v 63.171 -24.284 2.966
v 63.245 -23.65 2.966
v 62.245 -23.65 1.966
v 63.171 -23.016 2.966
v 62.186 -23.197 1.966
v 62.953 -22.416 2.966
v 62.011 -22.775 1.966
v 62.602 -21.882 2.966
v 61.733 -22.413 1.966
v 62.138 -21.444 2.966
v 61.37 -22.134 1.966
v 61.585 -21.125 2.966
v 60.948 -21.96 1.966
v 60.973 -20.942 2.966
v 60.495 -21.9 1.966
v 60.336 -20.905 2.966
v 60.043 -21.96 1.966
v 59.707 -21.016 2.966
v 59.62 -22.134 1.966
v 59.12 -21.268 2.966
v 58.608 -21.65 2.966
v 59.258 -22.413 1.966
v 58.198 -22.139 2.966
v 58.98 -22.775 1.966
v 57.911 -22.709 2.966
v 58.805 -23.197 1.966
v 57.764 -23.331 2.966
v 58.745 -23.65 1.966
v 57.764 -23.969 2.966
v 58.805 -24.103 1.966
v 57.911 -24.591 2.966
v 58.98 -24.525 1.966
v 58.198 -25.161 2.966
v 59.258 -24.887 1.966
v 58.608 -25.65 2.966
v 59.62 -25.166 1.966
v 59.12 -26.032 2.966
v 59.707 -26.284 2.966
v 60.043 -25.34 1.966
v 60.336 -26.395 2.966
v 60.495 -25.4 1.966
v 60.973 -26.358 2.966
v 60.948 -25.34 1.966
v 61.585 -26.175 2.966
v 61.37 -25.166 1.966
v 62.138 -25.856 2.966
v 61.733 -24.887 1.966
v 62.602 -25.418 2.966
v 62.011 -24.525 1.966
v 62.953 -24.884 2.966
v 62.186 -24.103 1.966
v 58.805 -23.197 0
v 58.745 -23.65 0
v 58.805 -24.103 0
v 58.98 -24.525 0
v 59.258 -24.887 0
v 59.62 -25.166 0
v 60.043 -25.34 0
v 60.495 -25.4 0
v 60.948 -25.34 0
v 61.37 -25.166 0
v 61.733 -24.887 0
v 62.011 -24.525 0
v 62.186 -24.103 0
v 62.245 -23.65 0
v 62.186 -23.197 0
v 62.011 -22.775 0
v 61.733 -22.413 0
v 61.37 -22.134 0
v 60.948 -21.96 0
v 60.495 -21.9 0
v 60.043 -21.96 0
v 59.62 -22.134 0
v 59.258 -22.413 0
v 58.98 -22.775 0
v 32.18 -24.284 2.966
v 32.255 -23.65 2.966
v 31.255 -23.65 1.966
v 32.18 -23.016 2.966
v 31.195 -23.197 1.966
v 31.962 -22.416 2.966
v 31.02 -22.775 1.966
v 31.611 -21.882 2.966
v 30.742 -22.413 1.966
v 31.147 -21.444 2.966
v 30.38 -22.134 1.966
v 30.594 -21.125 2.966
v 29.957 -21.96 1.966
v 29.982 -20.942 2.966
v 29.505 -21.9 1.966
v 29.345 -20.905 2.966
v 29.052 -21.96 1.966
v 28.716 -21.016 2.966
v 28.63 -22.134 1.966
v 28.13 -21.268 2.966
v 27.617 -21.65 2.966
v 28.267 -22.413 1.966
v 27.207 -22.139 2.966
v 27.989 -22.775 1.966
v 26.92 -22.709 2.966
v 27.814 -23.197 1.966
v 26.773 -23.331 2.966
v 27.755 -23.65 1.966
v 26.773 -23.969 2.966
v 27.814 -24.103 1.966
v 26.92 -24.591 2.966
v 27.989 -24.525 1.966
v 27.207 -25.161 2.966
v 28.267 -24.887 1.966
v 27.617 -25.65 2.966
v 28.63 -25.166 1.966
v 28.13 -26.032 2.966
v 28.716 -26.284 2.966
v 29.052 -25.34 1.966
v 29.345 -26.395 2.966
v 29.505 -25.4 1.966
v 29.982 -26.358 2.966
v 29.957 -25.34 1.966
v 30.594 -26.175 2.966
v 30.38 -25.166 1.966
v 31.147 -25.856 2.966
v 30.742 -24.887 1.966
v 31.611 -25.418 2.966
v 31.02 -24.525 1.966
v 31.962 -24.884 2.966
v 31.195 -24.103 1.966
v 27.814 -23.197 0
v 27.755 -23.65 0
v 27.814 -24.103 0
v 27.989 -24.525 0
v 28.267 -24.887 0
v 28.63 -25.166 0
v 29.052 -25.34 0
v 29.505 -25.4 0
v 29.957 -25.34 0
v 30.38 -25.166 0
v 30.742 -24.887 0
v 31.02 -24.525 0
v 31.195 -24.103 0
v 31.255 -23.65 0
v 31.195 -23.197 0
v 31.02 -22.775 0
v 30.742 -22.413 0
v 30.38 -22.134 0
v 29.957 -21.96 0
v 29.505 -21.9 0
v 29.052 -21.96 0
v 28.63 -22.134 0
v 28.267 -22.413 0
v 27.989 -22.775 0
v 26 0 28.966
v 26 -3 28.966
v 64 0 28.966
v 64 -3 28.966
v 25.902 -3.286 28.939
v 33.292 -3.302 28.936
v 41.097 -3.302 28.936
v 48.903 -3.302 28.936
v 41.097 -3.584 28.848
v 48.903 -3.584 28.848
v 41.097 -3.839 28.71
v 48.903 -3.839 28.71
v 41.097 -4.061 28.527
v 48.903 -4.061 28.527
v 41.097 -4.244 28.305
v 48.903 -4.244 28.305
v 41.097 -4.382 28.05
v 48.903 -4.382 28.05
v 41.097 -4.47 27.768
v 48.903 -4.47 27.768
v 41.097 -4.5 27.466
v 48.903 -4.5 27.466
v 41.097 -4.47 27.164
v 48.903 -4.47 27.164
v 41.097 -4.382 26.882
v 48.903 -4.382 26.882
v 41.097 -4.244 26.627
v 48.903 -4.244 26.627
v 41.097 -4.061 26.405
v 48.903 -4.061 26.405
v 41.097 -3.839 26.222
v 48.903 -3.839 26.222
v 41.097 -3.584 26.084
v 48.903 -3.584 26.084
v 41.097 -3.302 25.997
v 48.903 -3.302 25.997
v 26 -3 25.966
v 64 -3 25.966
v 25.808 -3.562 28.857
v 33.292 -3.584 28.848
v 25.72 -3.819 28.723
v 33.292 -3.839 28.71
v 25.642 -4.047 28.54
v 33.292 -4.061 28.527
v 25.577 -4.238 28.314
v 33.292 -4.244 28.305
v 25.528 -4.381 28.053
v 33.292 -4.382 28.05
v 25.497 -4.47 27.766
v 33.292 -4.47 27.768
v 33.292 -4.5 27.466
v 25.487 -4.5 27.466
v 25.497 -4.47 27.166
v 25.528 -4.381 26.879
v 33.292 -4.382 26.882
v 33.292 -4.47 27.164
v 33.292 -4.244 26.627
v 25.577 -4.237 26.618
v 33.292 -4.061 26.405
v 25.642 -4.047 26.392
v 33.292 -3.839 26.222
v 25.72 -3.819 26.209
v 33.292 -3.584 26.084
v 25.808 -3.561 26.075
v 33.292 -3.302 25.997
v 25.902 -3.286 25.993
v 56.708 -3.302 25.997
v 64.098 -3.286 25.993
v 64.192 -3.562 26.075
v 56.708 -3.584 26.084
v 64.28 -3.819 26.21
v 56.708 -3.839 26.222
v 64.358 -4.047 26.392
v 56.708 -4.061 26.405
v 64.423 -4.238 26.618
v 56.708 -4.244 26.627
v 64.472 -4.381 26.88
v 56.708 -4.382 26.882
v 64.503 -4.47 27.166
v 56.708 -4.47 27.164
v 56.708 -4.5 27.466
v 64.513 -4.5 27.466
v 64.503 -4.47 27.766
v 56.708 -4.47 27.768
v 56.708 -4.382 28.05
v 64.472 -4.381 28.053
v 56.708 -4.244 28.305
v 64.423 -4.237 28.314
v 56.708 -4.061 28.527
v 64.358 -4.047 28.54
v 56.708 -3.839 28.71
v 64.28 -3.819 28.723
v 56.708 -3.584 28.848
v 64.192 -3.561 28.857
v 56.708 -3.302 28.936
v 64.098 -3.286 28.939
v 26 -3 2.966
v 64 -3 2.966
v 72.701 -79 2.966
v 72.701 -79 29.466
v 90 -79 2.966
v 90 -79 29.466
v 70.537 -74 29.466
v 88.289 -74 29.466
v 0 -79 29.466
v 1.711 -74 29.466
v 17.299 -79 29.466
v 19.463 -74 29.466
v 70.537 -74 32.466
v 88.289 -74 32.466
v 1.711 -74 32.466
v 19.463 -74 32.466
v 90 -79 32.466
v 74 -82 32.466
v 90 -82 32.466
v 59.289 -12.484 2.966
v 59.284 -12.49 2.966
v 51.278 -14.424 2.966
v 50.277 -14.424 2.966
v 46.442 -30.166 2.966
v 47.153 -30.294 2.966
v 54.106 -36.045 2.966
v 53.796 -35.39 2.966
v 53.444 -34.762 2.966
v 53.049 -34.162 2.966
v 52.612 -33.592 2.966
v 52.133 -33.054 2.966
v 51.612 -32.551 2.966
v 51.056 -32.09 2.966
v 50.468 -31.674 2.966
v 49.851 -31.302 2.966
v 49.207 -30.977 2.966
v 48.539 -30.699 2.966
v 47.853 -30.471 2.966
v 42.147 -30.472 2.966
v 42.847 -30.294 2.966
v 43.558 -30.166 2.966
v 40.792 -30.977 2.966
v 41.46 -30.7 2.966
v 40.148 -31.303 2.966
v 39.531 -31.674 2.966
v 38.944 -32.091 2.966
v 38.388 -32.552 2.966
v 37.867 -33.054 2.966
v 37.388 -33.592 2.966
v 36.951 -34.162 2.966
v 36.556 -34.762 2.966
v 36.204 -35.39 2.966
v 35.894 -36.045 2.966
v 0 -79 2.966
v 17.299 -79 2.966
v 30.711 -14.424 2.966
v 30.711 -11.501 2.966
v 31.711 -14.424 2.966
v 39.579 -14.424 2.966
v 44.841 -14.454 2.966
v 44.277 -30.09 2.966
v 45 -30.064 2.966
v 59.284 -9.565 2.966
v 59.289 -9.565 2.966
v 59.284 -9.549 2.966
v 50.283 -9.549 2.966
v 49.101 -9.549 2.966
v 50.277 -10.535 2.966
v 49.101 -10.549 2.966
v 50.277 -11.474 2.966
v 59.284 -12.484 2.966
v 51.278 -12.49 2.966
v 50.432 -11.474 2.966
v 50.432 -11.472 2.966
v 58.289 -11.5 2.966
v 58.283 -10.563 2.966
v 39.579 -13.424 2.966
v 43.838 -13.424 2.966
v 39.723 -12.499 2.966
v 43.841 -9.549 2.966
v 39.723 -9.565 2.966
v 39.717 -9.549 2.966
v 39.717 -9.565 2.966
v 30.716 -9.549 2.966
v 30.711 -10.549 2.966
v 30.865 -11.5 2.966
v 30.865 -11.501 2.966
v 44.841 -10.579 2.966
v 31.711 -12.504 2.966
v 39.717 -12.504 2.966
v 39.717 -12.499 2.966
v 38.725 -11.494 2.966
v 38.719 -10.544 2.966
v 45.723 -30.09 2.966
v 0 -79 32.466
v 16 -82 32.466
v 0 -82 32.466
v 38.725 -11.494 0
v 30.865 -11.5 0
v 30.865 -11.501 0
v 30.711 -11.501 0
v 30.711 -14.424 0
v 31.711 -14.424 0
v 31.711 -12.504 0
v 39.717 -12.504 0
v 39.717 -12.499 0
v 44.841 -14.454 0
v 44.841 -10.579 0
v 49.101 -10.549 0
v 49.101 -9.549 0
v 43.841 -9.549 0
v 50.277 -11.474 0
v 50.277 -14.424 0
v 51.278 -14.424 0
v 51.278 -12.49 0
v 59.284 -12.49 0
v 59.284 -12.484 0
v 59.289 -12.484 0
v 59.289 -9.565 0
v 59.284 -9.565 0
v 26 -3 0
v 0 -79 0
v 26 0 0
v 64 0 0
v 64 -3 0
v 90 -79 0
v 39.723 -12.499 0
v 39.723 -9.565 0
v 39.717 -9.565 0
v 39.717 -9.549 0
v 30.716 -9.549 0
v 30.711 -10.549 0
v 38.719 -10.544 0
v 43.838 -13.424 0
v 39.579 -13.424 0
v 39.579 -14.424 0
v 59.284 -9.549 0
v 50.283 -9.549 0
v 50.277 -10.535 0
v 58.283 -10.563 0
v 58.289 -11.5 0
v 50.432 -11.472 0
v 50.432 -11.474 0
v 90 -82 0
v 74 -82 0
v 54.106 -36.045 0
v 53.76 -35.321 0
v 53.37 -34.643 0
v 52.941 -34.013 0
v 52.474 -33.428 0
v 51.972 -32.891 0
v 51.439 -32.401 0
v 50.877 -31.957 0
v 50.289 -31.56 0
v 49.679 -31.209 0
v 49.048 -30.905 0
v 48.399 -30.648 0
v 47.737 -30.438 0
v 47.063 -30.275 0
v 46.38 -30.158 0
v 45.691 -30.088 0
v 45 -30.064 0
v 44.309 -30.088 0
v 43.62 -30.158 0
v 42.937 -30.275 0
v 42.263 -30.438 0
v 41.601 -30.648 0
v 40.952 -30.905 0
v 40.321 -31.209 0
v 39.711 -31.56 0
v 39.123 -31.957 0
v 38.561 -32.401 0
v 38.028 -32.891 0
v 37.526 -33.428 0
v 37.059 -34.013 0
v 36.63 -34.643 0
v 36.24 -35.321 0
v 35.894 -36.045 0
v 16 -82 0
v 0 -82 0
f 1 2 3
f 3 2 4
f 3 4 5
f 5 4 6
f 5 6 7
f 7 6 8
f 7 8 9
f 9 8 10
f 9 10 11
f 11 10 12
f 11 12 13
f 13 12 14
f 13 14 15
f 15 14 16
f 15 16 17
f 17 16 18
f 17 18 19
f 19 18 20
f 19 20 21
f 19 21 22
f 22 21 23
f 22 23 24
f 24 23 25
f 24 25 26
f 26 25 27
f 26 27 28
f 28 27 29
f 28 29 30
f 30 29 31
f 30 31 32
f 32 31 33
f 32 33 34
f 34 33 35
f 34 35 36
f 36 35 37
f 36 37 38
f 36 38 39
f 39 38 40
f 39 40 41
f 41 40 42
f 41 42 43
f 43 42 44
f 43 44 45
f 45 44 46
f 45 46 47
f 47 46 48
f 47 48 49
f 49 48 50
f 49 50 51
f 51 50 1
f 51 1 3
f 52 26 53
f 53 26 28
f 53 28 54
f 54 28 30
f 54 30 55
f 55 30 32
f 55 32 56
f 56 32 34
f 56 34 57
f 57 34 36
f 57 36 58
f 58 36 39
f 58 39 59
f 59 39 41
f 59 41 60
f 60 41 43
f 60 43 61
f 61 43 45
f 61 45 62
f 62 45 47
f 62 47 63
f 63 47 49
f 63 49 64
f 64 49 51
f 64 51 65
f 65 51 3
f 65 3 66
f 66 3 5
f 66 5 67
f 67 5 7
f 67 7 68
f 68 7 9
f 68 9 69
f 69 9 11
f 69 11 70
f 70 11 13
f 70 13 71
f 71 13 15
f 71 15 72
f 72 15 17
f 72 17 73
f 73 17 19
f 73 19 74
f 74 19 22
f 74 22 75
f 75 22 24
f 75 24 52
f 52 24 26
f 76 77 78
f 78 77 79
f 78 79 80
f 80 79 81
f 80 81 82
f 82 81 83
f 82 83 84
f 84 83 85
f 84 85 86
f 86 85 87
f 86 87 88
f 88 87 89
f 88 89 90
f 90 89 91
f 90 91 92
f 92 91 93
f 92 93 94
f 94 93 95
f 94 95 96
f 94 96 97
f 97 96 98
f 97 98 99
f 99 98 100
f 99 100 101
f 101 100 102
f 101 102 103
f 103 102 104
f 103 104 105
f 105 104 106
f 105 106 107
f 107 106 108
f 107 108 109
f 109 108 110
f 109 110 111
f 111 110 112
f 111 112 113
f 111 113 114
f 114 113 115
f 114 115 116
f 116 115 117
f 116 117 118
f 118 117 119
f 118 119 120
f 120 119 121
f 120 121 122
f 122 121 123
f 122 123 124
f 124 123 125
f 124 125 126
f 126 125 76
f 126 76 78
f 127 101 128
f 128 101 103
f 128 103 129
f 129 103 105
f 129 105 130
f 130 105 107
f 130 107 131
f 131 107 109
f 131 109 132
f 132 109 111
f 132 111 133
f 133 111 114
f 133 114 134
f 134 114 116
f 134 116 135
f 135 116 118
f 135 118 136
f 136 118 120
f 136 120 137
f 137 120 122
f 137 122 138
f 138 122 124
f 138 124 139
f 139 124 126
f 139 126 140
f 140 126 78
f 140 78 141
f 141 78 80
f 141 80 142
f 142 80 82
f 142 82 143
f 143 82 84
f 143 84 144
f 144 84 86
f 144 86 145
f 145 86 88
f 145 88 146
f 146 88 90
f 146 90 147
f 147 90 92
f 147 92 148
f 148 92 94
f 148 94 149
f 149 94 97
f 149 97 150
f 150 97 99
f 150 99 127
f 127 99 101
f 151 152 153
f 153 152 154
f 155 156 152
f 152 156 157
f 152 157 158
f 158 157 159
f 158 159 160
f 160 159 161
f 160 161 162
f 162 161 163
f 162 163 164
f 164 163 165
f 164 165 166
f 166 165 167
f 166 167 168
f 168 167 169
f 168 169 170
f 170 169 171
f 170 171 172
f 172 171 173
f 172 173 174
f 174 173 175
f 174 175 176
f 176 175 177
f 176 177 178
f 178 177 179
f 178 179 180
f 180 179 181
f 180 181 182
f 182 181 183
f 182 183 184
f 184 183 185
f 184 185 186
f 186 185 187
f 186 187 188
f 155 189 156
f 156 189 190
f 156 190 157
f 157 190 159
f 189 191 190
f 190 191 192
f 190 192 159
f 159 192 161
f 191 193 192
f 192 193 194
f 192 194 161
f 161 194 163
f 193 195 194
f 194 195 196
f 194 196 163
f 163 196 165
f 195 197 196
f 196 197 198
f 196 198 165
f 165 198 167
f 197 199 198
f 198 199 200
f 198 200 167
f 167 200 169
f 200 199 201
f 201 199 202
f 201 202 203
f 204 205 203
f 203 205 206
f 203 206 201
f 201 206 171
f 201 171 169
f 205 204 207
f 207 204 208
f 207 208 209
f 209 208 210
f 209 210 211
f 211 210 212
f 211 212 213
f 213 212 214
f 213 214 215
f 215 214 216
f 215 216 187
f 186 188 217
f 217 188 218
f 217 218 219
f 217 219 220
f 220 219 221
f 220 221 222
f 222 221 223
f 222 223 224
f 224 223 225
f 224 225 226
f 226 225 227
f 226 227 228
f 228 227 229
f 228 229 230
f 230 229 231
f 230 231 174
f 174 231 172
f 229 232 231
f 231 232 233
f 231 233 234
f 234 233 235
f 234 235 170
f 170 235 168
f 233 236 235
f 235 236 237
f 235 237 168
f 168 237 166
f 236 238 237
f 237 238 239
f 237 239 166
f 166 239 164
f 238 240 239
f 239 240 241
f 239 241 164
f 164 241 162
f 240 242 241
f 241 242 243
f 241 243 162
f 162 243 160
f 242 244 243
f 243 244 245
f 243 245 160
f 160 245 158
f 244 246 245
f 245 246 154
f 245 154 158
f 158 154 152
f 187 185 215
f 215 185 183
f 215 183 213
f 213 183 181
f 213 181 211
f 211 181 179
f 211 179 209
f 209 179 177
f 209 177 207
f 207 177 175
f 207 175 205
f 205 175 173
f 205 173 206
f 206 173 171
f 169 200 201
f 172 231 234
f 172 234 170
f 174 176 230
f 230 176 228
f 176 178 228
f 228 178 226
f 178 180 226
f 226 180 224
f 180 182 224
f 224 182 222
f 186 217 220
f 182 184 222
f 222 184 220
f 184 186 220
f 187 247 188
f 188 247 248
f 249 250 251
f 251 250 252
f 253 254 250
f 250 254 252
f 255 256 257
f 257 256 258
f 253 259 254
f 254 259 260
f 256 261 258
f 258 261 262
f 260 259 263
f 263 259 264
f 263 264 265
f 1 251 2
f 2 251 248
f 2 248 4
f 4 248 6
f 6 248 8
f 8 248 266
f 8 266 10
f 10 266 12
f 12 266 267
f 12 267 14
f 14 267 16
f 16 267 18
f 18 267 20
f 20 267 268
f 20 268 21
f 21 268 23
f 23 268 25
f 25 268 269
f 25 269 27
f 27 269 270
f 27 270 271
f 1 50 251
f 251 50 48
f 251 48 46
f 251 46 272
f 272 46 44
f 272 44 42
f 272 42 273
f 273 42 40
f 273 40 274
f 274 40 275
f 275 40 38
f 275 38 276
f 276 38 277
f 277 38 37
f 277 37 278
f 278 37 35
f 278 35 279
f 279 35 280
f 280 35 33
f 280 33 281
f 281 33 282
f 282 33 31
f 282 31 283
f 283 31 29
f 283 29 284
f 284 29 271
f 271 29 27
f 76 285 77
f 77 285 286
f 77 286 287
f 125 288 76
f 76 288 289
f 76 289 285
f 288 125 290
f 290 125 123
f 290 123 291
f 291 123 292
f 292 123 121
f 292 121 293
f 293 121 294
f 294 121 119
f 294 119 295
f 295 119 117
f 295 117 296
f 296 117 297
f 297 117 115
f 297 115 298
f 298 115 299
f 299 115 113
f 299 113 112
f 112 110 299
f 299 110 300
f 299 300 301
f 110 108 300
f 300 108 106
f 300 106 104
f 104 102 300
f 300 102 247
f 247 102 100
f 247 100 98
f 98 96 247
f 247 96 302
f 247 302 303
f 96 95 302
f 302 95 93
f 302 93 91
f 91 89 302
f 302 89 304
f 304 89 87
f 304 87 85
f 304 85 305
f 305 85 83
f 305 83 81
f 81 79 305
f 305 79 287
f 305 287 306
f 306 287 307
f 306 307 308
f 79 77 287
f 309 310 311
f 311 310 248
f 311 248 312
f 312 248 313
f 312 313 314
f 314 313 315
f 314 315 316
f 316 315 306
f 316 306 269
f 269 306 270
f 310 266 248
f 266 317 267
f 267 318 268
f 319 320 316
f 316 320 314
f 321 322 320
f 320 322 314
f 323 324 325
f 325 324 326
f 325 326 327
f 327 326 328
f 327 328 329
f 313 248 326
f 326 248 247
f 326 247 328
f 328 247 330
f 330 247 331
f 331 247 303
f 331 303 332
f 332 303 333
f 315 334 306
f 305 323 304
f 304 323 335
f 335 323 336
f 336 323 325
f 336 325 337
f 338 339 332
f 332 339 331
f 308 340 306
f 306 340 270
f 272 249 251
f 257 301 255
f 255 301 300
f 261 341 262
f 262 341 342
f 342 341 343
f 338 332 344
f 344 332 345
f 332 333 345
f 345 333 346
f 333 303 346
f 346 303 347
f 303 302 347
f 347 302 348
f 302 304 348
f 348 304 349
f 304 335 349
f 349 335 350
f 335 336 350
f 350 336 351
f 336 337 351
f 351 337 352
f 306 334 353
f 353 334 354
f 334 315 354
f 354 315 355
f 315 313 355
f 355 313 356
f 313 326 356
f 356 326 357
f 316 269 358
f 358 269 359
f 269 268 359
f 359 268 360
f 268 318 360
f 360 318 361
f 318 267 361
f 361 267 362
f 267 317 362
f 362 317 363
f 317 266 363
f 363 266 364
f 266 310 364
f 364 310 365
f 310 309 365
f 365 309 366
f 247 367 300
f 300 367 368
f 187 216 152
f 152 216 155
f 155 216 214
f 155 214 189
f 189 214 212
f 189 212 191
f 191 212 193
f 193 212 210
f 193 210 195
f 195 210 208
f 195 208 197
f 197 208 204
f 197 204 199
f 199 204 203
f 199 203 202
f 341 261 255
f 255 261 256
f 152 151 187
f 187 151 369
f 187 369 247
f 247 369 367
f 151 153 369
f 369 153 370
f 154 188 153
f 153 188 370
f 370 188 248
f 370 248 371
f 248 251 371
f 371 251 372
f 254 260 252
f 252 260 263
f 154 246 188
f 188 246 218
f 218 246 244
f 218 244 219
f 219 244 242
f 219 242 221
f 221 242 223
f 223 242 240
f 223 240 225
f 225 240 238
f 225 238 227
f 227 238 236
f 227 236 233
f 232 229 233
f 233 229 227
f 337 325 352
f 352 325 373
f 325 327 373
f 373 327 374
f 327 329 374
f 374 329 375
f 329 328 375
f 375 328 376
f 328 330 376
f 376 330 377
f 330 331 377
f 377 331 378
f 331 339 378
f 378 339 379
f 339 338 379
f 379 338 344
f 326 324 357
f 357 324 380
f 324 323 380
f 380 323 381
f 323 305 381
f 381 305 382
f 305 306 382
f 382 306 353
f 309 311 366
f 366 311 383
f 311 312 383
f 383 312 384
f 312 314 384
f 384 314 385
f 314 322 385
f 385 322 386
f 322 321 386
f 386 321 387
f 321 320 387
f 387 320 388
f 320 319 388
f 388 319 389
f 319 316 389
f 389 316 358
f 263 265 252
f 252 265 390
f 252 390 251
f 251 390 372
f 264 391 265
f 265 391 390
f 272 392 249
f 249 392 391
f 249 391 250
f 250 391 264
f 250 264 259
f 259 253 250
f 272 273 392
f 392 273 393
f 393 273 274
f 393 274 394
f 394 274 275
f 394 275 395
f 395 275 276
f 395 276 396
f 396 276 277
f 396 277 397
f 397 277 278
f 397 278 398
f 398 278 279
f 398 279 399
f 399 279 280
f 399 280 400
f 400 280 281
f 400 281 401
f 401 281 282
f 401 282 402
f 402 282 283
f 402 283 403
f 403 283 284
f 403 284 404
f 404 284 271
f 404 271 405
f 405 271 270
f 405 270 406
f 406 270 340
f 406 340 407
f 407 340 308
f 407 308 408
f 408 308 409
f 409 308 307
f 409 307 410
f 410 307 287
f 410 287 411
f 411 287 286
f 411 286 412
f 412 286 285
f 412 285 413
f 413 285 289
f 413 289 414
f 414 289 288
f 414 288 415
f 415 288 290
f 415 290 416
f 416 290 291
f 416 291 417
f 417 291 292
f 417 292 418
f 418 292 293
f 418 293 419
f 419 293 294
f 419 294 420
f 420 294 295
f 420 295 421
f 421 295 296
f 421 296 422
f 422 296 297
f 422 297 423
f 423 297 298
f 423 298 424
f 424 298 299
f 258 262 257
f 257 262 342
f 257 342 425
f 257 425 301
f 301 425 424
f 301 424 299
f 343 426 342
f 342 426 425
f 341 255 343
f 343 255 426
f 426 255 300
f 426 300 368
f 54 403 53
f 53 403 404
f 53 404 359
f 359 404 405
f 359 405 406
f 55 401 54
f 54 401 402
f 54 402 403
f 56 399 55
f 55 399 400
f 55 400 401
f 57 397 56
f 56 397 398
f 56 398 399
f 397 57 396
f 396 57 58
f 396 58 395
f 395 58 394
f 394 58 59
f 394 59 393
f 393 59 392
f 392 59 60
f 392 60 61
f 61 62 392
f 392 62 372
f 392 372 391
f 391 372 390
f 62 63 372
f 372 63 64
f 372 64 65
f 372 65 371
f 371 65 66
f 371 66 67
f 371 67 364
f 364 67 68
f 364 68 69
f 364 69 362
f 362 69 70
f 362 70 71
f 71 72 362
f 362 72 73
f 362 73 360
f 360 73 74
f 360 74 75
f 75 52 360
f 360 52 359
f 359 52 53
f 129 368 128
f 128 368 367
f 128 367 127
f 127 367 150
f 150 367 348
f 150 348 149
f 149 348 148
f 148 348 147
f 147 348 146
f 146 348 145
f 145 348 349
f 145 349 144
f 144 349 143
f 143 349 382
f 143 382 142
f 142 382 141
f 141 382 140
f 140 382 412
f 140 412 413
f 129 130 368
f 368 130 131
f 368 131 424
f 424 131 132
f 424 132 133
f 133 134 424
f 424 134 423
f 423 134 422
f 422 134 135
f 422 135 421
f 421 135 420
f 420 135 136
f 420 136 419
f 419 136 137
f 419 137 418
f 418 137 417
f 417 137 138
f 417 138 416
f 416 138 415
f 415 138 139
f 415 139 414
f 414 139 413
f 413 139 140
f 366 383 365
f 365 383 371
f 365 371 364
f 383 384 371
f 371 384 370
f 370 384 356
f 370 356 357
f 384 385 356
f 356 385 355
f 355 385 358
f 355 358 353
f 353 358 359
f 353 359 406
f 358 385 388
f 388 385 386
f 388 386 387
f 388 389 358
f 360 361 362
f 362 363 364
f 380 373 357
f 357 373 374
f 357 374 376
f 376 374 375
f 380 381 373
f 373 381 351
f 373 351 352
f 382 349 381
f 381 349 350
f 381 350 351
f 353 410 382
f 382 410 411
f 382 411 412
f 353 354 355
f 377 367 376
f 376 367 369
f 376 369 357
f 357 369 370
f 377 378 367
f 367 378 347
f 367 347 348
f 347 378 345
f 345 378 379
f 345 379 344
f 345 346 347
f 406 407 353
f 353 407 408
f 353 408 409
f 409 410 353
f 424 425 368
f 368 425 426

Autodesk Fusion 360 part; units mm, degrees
sketch "Top" plane through (0, 0, 0) normal (0, 0, 1) x (1, 0, 0)
  line L0 (59.2894, -12.484) -> (59.2841, -12.484)
  line L1 (59.2841, -12.484) -> (59.2841, -12.4898)
  line L2 (59.2841, -12.4898) -> (51.2779, -12.4898)
  line L3 (51.2779, -12.4898) -> (51.2779, -14.4245)
  line L4 (51.2779, -14.4245) -> (50.2771, -14.4245)
  line L5 (50.2771, -14.4245) -> (50.2771, -11.4736)
  line L6 (50.2771, -11.4736) -> (50.4315, -11.4736)
  line L7 (50.4315, -11.4736) -> (50.4315, -11.4723)
  line L8 (50.4315, -11.4723) -> (58.2887, -11.5)
  line L9 (58.2887, -11.5) -> (58.283, -10.5632)
  line L10 (58.283, -10.5632) -> (50.2771, -10.5355)
  line L11 (50.2771, -10.5355) -> (50.2828, -9.5486)
  line L12 (50.2828, -9.5486) -> (59.2837, -9.5486)
  line L13 (59.2837, -9.5486) -> (59.2837, -9.565)
  line L14 (59.2837, -9.565) -> (59.2894, -9.565)
  line L15 (59.2894, -9.565) -> (59.2894, -12.484)
  line L16 (49.1011, -10.5494) -> (44.8406, -10.5786)
  line L17 (44.8406, -10.5786) -> (44.8406, -14.4537)
  line L18 (44.8406, -14.4537) -> (39.5795, -14.4245)
  line L19 (39.5795, -14.4245) -> (39.5795, -13.4237)
  line L20 (39.5795, -13.4237) -> (43.8385, -13.4237)
  line L21 (43.8385, -13.4237) -> (43.8413, -9.5486)
  line L22 (43.8413, -9.5486) -> (49.1011, -9.5486)
  line L23 (49.1011, -9.5486) -> (49.1011, -10.5494)
  line L24 (31.7113, -12.5044) -> (31.7113, -14.4245)
  line L25 (31.7113, -14.4245) -> (30.7106, -14.4245)
  line L26 (30.7106, -14.4245) -> (30.7106, -11.5015)
  line L27 (30.7106, -11.5015) -> (30.8648, -11.5015)
  line L28 (30.8648, -11.5015) -> (30.8648, -11.5001)
  line L29 (30.8648, -11.5001) -> (38.7247, -11.4943)
  line L30 (38.7247, -11.4943) -> (38.7192, -10.5436)
  line L31 (38.7192, -10.5436) -> (30.7106, -10.5494)
  line L32 (30.7106, -10.5494) -> (30.7161, -9.5486)
  line L33 (30.7161, -9.5486) -> (39.7172, -9.5486)
  line L34 (39.7172, -9.5486) -> (39.7172, -9.565)
  line L35 (39.7172, -9.565) -> (39.7227, -9.565)
  line L36 (39.7227, -9.565) -> (39.7227, -12.4987)
  line L37 (39.7227, -12.4987) -> (39.7172, -12.4987)
  line L38 (39.7172, -12.4987) -> (39.7172, -12.5044)
  line L39 (39.7172, -12.5044) -> (31.7113, -12.5044)
  line L40 (64, -3) -> (64, 0)
  line L41 (64, 0) -> (26, 0)
  line L42 (26, 0) -> (26, -3)
  line L43 (26, -3) -> (0, -79)
  line L44 (0, -79) -> (0, -82)
  line L45 (0, -82) -> (16, -82)
  line L46 (16, -82) -> (35.8941, -36.045)
  spline S0 degree 3 poles (35.8941, -36.045) (39.3461, -28.0709) (50.6539, -28.0709) (54.106, -36.045) knots 7 7 7 7 8 8 8 8
  line L47 (54.106, -36.045) -> (74, -82)
  line L48 (74, -82) -> (90, -82)
  line L49 (90, -82) -> (90, -79)
  line L50 (90, -79) -> (64, -3)
extrude "Extrude1" add sketch "Top" along normal blind 32.47
sketch "Side" plane through (0, 0, 0) normal (1, 0, 0) x (0, 1, 0)
  line L0 (-82, 37.505) -> (-82, 32.4661)
  line L1 (-82, 32.4661) -> (-74, 32.4661)
  line L2 (-74, 32.4661) -> (-74, 29.4661)
  line L3 (-74, 29.4661) -> (-79, 29.4661)
  line L4 (-79, 29.4661) -> (-79, 2.9661)
  line L5 (-79, 2.9661) -> (-3, 2.9661)
  line L6 (-3, 2.9661) -> (-3, 25.9661)
  spline S0 degree 3 poles (-3, 25.9661) (-3.8284, 25.9661) (-4.5, 26.6377) (-4.5, 27.4661) (-4.5, 28.2945) (-3.8284, 28.9661) (-3, 28.9661) knots 7 7 7 7 8 8 8 9 9 9 9
  line L7 (-3, 28.9661) -> (0, 28.9661)
  line L8 (0, 28.9661) -> (0, 37.505)
  line L9 (0, 37.505) -> (-82, 37.505)
extrude "Extrude2" cut sketch "Side" along normal blind 90
hole "Hole1" at (29.5044, -23.6505, 2.9661) direction (0, 0, -1) diameter 3.5 depth 3 tip angle 118 countersink diameter 5.5 countersink angle 90
hole "Hole2" at (60.4957, -23.6505, 2.9661) direction (0, 0, -1) diameter 3.5 depth 3 tip angle 118 countersink diameter 5.5 countersink angle 90
